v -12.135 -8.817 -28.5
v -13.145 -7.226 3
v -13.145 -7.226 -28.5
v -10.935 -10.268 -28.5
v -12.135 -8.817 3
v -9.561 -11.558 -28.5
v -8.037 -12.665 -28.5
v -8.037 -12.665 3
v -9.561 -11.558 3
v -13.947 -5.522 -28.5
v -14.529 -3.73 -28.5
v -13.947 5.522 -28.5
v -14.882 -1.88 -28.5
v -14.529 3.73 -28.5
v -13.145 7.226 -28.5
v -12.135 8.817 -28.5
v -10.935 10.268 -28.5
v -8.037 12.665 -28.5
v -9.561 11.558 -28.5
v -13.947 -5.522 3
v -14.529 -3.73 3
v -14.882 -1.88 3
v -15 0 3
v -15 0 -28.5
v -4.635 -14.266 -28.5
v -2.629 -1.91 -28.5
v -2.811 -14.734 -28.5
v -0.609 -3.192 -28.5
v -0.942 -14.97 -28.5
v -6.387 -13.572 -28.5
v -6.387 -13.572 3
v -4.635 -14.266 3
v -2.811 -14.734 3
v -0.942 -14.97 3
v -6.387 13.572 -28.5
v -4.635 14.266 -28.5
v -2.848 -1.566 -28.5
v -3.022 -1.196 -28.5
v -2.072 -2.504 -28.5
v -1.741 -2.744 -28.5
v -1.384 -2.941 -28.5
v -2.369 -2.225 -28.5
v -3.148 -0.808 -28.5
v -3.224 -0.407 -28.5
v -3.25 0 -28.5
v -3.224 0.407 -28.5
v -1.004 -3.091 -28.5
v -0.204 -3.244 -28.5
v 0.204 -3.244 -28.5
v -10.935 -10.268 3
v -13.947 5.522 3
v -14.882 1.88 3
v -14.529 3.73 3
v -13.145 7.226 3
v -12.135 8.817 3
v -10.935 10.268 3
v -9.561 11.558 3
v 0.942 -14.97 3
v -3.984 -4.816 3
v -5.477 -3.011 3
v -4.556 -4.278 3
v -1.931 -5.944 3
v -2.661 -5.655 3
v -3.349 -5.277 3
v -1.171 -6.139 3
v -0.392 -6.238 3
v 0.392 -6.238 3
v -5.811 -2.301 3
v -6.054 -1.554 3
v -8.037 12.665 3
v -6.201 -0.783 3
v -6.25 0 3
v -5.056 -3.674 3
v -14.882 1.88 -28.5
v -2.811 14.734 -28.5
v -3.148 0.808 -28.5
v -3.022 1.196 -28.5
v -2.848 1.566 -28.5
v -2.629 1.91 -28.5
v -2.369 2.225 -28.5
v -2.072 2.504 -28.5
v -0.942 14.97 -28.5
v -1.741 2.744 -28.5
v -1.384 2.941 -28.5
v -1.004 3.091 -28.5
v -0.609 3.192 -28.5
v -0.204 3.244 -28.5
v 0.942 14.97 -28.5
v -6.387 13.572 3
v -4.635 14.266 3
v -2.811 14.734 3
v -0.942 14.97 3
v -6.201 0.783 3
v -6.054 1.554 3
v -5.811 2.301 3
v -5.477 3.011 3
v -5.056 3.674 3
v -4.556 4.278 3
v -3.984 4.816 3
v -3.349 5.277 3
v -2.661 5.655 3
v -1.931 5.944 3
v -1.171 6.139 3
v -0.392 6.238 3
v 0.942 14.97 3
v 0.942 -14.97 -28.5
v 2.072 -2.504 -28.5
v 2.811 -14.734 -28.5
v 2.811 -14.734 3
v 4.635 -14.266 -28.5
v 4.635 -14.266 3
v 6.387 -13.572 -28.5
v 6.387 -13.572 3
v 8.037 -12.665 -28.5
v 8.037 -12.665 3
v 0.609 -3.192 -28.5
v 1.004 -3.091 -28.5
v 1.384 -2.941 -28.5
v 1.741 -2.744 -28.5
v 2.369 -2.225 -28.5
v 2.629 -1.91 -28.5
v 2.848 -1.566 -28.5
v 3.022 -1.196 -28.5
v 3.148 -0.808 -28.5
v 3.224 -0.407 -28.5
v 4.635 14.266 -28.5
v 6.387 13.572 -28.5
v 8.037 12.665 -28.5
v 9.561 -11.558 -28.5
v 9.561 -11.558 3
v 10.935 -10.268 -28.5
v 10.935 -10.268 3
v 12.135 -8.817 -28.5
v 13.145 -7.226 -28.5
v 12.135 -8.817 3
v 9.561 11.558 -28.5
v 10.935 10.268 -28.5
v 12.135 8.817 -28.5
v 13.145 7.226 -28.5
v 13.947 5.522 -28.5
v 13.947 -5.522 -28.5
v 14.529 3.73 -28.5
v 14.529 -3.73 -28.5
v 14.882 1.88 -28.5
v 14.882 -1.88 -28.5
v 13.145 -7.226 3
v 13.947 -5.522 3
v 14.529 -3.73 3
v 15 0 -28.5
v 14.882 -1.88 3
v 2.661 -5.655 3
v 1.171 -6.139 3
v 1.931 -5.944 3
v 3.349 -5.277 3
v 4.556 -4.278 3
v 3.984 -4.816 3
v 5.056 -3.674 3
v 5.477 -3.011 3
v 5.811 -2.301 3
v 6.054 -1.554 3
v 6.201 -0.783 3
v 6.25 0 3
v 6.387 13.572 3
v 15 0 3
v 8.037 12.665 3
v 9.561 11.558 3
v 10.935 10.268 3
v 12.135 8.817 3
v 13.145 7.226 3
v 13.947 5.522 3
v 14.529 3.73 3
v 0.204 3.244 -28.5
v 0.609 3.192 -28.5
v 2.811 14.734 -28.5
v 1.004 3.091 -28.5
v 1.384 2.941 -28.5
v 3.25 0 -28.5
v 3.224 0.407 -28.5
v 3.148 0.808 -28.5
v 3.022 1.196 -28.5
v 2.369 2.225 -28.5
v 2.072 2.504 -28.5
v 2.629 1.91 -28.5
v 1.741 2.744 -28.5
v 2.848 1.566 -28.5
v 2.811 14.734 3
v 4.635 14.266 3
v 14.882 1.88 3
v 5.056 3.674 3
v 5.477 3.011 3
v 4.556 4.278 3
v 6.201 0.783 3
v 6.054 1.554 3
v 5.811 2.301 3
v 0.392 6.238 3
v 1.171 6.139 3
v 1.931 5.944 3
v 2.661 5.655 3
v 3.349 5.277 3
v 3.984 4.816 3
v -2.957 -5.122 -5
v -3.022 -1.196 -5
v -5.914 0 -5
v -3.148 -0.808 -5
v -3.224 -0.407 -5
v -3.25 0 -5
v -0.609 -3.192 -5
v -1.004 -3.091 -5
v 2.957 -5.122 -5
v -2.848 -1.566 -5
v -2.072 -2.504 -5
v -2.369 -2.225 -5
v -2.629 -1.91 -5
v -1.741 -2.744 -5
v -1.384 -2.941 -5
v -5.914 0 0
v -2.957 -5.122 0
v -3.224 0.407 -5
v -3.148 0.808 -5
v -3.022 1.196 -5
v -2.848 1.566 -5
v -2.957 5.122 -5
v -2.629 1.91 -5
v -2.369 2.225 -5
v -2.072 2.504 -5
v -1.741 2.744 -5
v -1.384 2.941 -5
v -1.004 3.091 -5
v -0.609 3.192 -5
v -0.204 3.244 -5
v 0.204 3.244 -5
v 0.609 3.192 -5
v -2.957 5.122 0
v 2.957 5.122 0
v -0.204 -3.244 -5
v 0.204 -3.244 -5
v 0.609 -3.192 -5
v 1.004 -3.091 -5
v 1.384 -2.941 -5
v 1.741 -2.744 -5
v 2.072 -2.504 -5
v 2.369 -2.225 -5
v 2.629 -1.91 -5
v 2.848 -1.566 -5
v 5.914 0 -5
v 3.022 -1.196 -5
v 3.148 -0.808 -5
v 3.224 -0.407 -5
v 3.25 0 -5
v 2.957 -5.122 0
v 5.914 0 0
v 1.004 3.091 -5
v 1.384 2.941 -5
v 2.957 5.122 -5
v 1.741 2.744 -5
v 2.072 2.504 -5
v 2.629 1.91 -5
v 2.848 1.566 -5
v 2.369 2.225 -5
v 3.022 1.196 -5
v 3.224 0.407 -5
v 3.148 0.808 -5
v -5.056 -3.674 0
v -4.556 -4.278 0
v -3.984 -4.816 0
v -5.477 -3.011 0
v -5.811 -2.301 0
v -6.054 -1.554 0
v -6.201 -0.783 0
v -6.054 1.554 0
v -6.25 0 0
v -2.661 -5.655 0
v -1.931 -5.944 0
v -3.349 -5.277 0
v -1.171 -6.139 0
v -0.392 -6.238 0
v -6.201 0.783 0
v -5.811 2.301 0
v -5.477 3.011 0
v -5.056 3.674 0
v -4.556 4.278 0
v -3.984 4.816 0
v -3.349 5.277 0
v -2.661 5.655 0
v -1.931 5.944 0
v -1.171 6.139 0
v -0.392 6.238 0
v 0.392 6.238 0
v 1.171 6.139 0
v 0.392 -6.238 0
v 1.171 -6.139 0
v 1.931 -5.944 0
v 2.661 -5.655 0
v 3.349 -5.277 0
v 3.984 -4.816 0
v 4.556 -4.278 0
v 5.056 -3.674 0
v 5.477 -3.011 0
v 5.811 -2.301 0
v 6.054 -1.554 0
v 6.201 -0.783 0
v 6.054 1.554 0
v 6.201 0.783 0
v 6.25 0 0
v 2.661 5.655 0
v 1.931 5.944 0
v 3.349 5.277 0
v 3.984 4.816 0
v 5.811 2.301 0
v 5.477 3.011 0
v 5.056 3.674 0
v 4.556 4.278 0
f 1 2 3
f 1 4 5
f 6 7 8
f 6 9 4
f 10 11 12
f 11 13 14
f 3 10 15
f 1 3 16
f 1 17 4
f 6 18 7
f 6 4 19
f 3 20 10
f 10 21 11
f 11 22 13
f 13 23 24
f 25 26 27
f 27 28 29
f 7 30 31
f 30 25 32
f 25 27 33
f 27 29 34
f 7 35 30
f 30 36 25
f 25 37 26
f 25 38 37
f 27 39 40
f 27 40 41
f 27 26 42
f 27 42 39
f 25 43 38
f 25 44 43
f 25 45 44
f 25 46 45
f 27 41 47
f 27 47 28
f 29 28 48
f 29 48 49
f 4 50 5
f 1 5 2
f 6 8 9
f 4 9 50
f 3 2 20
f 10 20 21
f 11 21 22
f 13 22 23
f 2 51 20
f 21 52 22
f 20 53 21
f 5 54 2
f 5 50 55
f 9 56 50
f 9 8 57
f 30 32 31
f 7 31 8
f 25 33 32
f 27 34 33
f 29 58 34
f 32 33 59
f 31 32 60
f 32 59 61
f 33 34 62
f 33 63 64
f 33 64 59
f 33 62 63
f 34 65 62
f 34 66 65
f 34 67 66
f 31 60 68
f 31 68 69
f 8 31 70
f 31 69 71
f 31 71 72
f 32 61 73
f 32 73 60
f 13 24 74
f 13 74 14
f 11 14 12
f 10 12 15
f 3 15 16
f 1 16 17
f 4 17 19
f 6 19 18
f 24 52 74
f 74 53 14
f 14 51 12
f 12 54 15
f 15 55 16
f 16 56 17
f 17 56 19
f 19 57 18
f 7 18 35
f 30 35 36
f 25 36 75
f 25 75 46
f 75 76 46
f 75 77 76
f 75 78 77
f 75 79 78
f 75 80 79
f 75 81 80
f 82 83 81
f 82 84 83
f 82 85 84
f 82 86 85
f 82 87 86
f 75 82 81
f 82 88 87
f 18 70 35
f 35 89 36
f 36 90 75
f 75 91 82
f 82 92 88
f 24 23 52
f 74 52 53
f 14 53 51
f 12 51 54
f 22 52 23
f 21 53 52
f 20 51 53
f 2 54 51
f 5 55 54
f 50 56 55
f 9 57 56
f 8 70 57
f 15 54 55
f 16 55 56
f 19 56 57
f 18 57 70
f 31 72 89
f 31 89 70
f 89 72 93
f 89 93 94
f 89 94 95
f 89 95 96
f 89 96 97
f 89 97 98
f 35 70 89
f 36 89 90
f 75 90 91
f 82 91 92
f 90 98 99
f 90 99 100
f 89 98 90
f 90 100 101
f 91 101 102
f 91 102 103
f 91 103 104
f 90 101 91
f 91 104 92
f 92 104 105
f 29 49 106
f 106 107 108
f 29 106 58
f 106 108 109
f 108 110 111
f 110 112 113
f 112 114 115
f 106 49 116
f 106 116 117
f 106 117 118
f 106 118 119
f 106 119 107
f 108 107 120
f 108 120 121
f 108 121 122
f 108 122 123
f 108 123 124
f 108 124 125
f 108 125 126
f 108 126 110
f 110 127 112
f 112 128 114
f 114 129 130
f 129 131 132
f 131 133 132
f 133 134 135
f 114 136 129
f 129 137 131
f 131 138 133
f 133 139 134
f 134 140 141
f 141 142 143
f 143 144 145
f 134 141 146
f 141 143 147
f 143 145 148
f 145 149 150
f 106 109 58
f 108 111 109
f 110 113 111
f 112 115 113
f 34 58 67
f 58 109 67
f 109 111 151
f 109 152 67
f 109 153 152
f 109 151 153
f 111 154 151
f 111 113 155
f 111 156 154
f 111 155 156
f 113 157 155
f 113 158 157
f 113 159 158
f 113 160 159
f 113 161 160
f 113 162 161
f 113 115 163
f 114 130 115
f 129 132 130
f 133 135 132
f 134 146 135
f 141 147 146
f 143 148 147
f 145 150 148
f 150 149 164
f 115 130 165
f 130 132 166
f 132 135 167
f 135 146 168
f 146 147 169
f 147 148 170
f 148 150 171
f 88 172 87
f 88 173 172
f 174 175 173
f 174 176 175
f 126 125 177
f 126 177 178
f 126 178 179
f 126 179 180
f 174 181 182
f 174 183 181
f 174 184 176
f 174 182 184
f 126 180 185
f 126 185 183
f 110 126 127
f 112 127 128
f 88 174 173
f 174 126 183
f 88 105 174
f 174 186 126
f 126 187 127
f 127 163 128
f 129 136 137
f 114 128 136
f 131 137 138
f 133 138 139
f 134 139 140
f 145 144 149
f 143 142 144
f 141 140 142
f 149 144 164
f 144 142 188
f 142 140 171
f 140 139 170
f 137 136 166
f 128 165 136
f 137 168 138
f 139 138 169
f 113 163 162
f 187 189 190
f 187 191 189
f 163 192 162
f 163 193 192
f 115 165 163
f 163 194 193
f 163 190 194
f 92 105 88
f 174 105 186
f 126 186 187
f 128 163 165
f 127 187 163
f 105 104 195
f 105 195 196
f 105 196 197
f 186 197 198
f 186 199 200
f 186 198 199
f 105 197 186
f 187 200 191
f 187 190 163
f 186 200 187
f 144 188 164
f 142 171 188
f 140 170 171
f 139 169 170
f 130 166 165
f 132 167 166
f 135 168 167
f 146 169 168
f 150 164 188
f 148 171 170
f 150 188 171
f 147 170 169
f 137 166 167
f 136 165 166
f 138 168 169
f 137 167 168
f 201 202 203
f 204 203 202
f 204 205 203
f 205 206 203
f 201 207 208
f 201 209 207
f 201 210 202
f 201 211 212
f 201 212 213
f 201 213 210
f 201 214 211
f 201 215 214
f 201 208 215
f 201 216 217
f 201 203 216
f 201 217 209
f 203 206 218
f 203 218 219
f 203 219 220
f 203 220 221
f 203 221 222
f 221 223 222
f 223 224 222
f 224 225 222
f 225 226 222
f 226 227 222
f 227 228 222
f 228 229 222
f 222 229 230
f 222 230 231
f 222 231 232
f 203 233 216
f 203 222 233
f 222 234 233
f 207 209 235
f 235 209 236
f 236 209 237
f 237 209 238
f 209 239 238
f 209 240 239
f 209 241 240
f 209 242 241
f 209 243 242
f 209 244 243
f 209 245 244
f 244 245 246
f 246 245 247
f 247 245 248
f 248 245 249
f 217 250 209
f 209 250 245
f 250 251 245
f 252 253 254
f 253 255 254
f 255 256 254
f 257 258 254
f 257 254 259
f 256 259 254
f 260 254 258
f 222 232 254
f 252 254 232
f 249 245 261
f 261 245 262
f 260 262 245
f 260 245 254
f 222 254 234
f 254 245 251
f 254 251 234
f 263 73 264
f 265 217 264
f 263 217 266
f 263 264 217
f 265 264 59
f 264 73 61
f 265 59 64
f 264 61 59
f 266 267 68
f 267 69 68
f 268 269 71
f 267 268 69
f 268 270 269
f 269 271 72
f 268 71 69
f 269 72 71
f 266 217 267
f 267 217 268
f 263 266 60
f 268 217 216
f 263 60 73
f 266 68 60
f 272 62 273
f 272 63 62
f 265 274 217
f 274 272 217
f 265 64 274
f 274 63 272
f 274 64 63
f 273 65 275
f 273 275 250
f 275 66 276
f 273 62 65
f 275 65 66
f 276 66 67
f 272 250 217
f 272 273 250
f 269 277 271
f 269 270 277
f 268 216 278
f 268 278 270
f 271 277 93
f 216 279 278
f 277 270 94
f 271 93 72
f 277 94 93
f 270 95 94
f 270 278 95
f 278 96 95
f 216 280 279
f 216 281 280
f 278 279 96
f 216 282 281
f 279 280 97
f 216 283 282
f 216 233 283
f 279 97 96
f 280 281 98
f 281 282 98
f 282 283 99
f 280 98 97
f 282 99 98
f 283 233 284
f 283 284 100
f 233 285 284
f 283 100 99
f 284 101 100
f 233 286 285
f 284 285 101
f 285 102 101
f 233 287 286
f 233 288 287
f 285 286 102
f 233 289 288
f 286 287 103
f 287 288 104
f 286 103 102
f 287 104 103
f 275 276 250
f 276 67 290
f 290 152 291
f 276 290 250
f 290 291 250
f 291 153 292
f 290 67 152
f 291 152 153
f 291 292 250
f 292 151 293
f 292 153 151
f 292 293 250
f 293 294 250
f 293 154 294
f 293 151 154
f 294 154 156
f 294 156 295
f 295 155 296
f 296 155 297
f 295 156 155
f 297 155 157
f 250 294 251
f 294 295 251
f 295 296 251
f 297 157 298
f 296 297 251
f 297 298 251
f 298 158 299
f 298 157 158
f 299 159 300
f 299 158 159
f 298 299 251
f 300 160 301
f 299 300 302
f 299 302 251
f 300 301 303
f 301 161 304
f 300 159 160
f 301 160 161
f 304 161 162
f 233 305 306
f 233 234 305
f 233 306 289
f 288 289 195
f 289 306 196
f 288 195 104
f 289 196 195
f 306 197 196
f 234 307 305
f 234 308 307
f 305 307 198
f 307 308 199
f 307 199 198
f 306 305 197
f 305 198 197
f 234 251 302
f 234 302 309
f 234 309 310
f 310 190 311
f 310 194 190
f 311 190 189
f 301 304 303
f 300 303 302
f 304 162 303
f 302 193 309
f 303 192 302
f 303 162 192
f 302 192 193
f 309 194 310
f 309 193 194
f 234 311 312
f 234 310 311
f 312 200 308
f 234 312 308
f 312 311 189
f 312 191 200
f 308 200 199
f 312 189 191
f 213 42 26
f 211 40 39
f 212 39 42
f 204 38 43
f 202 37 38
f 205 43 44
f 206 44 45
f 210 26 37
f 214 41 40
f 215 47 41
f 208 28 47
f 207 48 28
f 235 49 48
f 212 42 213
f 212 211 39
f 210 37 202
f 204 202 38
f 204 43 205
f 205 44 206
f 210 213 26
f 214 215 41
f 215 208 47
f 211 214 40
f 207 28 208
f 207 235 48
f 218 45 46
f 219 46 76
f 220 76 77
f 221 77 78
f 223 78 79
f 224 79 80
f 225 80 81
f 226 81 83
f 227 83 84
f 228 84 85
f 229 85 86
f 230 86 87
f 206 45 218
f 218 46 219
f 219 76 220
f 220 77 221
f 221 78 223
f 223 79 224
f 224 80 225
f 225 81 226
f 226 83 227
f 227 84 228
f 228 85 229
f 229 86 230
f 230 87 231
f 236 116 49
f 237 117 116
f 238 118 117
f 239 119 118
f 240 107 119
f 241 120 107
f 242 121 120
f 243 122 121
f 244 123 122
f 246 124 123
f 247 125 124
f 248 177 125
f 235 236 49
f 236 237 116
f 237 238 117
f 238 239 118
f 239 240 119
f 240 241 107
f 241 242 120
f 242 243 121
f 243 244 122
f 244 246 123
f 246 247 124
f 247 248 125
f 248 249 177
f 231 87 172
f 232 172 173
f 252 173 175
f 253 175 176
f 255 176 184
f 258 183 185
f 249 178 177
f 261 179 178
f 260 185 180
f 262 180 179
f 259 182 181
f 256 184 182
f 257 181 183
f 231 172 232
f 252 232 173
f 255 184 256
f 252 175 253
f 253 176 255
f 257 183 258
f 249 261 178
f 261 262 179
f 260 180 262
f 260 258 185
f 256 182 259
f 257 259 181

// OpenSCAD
$fn = 50;

difference() {
	union() {
		translate(v = [0, 0, -28.5]) {
			cylinder(h = 31.5, r = 15.0);
		}
		#translate(v = [0, 0, -30.0]) {
			cylinder(h = 30, r = 2.875);
		}
	}
	union() {
		translate(v = [0, 0, 0]) {
			rotate(a = [0, 0, 0]) {
				difference() {
					union() {
						translate(v = [0, 0, -5]) {
							linear_extrude(height = 5) {
								polygon(points = [[5.914249999999999, 0.0], [2.957125, 5.1218907443321156], [-2.9571249999999982, 5.1218907443321156], [-5.914249999999999, 7.242867331857232e-16], [-2.9571250000000022, -5.121890744332115], [2.9571249999999956, -5.121890744332118]]);
							}
						}
					}
					union();
				}
			}
		}
		#cylinder(h = 3, r = 6.25);
		#translate(v = [0, 0, -100.0]) {
			cylinder(h = 200, r = 3.25);
		}
	}
}
